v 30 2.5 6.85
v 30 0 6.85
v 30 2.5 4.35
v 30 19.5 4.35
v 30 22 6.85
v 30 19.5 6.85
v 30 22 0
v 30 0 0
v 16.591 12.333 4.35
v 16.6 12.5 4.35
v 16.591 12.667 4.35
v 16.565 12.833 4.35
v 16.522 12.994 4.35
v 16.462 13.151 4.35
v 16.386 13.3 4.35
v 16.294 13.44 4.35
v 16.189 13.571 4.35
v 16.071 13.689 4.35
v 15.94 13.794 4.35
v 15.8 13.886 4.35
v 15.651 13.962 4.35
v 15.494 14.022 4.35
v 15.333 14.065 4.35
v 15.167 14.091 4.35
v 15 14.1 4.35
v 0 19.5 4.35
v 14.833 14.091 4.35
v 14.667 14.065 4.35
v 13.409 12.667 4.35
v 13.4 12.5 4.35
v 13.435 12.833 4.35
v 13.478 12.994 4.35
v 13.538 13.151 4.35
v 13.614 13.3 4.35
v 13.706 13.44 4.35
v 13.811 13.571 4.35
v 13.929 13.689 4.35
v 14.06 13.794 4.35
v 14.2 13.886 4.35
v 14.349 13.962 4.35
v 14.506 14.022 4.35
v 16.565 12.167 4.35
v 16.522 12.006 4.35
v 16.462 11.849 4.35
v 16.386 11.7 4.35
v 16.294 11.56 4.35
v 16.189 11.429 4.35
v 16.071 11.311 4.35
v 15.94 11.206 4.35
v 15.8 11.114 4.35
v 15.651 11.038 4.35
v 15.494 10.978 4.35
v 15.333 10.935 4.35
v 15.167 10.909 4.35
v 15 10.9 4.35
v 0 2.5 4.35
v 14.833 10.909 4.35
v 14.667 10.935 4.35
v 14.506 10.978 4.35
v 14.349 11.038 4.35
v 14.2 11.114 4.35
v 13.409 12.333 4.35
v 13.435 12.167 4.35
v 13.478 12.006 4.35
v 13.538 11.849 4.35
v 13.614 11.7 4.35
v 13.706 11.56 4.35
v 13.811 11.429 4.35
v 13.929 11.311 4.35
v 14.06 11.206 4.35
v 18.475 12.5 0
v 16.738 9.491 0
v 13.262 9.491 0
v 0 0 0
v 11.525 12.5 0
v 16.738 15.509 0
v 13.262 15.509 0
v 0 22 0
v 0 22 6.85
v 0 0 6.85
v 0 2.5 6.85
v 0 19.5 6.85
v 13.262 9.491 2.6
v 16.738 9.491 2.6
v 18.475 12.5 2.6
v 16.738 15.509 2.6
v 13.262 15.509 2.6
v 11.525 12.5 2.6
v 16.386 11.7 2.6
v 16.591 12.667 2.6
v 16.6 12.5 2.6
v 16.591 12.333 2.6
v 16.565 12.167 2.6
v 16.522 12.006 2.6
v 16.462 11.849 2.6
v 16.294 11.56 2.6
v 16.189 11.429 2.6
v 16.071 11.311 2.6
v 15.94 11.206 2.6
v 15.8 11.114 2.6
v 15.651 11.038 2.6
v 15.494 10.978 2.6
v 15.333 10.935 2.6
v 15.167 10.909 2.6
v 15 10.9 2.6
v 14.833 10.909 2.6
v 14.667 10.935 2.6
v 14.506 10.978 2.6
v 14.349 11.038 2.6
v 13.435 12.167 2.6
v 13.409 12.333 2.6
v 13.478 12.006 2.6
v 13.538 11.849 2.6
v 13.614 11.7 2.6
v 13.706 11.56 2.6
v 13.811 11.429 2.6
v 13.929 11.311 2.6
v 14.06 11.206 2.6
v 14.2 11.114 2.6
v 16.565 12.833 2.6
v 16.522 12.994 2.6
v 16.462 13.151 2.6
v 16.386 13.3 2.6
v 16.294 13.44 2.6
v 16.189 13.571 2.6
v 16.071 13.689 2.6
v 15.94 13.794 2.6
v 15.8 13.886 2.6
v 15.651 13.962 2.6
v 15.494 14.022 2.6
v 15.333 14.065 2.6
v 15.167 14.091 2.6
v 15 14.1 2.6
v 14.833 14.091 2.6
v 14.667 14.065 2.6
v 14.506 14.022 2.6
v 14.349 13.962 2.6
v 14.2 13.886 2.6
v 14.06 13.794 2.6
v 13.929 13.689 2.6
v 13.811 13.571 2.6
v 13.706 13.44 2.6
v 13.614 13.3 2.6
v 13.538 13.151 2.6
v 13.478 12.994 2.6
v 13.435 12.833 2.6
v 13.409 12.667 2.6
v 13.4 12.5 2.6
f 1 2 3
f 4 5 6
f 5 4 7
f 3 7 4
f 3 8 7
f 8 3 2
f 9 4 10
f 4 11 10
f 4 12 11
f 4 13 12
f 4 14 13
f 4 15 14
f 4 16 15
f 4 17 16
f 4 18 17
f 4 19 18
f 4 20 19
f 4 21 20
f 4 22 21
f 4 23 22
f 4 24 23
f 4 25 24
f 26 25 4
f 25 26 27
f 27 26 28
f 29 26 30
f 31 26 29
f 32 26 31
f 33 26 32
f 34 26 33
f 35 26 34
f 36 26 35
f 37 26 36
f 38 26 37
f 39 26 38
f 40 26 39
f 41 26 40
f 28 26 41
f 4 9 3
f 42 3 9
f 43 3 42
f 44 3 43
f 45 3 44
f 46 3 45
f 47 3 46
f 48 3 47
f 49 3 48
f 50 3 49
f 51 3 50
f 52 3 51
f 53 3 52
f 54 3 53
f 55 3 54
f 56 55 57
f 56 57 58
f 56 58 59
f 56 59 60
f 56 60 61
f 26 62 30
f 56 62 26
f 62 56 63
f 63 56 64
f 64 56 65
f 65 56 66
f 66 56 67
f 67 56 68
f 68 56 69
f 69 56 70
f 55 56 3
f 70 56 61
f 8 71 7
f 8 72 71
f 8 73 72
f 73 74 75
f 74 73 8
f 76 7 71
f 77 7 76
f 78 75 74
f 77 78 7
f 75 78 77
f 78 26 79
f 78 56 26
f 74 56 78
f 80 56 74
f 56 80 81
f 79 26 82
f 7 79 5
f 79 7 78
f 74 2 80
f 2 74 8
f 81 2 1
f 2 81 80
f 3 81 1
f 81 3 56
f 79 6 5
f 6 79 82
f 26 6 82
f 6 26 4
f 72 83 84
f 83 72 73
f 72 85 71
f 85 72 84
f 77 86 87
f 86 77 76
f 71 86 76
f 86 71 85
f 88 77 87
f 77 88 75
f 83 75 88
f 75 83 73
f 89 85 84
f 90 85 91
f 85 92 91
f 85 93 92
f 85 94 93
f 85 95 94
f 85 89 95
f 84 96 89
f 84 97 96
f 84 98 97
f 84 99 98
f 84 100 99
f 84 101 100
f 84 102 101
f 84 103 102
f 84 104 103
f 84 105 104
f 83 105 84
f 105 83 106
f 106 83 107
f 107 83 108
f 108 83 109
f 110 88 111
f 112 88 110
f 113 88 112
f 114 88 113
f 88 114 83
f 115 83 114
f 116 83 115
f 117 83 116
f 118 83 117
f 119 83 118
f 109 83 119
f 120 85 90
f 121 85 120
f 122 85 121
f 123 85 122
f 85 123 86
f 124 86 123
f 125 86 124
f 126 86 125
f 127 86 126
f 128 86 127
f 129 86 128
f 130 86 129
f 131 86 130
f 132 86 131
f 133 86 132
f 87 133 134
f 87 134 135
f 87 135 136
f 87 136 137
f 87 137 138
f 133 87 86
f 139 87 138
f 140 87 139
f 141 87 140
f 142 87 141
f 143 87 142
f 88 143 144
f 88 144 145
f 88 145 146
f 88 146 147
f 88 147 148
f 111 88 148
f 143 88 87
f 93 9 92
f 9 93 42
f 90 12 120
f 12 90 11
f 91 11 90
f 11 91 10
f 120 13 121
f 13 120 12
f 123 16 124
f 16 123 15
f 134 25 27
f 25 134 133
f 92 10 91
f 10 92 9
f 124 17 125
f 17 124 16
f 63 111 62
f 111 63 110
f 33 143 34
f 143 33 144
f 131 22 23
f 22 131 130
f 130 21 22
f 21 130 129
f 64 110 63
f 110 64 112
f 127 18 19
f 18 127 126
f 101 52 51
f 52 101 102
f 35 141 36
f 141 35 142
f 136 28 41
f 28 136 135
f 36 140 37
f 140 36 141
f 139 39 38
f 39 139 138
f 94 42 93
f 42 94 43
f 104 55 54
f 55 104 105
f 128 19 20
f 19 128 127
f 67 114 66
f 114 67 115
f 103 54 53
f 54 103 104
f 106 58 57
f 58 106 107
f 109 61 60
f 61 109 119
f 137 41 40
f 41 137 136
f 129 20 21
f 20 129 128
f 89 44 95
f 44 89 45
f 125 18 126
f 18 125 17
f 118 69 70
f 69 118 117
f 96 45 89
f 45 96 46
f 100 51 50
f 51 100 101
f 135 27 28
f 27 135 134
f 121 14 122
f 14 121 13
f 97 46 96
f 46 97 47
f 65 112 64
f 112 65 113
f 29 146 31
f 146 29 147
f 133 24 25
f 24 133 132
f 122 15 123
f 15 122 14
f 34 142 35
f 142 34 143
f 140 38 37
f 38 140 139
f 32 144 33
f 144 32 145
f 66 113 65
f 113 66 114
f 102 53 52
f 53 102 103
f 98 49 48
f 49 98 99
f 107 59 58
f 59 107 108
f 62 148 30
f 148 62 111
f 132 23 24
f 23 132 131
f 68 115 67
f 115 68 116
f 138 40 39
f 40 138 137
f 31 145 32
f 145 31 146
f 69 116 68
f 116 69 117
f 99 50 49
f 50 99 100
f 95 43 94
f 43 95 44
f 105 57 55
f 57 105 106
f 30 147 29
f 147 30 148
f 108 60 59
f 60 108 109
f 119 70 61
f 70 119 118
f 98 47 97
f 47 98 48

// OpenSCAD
// Legs to help C16 keyboard be usable on a flat surface.
// This is a temporary solution until I'm ready to mount
// the keyboard in a more permanent enclosure.

// all measurements are mm

// measured from front flange to rear flange
kb_d = 125;

// desired height of the back flange
back_h = 30;

flange_d = 17; // really 15, but leave some clearance

// hole center is about 6mm  offset from outer edge of flange
screw_hole_offset = 7;

// dimensions for m3 nut pocket
m3_hex_nut_d = 6.15; // measured the long way
m3_hex_nut_h = 2.15;
m3_hex_nut_hole_tolerance = 0.4;

m3_screw_hole_d = 3.2;

bracket_w = 30;
bracket_base_thickness = m3_hex_nut_h + 0.2 + 2;
bracket_wall_thickness = 2.5;

module bracket_solid() {
    cube([bracket_w, flange_d + 2*bracket_wall_thickness, bracket_base_thickness]);
    
    translate([0, 0, bracket_base_thickness]) {
        cube([bracket_w, bracket_wall_thickness, bracket_wall_thickness]);
    }
    
    translate([0, flange_d+bracket_wall_thickness, bracket_base_thickness]) {
        cube([bracket_w, bracket_wall_thickness, bracket_wall_thickness]);
    }
}

module bracket() {
    difference() {
        bracket_solid();
        
        translate([bracket_w/2, flange_d+bracket_wall_thickness-screw_hole_offset, -0.05]) {
            cylinder(r=m3_hex_nut_d/2+m3_hex_nut_hole_tolerance, h=m3_hex_nut_h+0.4+0.1, $fn=6);
            
            cylinder(r=m3_screw_hole_d/2, h=bracket_base_thickness+0.1, $fn=60);
        }
    }
}

bracket();
